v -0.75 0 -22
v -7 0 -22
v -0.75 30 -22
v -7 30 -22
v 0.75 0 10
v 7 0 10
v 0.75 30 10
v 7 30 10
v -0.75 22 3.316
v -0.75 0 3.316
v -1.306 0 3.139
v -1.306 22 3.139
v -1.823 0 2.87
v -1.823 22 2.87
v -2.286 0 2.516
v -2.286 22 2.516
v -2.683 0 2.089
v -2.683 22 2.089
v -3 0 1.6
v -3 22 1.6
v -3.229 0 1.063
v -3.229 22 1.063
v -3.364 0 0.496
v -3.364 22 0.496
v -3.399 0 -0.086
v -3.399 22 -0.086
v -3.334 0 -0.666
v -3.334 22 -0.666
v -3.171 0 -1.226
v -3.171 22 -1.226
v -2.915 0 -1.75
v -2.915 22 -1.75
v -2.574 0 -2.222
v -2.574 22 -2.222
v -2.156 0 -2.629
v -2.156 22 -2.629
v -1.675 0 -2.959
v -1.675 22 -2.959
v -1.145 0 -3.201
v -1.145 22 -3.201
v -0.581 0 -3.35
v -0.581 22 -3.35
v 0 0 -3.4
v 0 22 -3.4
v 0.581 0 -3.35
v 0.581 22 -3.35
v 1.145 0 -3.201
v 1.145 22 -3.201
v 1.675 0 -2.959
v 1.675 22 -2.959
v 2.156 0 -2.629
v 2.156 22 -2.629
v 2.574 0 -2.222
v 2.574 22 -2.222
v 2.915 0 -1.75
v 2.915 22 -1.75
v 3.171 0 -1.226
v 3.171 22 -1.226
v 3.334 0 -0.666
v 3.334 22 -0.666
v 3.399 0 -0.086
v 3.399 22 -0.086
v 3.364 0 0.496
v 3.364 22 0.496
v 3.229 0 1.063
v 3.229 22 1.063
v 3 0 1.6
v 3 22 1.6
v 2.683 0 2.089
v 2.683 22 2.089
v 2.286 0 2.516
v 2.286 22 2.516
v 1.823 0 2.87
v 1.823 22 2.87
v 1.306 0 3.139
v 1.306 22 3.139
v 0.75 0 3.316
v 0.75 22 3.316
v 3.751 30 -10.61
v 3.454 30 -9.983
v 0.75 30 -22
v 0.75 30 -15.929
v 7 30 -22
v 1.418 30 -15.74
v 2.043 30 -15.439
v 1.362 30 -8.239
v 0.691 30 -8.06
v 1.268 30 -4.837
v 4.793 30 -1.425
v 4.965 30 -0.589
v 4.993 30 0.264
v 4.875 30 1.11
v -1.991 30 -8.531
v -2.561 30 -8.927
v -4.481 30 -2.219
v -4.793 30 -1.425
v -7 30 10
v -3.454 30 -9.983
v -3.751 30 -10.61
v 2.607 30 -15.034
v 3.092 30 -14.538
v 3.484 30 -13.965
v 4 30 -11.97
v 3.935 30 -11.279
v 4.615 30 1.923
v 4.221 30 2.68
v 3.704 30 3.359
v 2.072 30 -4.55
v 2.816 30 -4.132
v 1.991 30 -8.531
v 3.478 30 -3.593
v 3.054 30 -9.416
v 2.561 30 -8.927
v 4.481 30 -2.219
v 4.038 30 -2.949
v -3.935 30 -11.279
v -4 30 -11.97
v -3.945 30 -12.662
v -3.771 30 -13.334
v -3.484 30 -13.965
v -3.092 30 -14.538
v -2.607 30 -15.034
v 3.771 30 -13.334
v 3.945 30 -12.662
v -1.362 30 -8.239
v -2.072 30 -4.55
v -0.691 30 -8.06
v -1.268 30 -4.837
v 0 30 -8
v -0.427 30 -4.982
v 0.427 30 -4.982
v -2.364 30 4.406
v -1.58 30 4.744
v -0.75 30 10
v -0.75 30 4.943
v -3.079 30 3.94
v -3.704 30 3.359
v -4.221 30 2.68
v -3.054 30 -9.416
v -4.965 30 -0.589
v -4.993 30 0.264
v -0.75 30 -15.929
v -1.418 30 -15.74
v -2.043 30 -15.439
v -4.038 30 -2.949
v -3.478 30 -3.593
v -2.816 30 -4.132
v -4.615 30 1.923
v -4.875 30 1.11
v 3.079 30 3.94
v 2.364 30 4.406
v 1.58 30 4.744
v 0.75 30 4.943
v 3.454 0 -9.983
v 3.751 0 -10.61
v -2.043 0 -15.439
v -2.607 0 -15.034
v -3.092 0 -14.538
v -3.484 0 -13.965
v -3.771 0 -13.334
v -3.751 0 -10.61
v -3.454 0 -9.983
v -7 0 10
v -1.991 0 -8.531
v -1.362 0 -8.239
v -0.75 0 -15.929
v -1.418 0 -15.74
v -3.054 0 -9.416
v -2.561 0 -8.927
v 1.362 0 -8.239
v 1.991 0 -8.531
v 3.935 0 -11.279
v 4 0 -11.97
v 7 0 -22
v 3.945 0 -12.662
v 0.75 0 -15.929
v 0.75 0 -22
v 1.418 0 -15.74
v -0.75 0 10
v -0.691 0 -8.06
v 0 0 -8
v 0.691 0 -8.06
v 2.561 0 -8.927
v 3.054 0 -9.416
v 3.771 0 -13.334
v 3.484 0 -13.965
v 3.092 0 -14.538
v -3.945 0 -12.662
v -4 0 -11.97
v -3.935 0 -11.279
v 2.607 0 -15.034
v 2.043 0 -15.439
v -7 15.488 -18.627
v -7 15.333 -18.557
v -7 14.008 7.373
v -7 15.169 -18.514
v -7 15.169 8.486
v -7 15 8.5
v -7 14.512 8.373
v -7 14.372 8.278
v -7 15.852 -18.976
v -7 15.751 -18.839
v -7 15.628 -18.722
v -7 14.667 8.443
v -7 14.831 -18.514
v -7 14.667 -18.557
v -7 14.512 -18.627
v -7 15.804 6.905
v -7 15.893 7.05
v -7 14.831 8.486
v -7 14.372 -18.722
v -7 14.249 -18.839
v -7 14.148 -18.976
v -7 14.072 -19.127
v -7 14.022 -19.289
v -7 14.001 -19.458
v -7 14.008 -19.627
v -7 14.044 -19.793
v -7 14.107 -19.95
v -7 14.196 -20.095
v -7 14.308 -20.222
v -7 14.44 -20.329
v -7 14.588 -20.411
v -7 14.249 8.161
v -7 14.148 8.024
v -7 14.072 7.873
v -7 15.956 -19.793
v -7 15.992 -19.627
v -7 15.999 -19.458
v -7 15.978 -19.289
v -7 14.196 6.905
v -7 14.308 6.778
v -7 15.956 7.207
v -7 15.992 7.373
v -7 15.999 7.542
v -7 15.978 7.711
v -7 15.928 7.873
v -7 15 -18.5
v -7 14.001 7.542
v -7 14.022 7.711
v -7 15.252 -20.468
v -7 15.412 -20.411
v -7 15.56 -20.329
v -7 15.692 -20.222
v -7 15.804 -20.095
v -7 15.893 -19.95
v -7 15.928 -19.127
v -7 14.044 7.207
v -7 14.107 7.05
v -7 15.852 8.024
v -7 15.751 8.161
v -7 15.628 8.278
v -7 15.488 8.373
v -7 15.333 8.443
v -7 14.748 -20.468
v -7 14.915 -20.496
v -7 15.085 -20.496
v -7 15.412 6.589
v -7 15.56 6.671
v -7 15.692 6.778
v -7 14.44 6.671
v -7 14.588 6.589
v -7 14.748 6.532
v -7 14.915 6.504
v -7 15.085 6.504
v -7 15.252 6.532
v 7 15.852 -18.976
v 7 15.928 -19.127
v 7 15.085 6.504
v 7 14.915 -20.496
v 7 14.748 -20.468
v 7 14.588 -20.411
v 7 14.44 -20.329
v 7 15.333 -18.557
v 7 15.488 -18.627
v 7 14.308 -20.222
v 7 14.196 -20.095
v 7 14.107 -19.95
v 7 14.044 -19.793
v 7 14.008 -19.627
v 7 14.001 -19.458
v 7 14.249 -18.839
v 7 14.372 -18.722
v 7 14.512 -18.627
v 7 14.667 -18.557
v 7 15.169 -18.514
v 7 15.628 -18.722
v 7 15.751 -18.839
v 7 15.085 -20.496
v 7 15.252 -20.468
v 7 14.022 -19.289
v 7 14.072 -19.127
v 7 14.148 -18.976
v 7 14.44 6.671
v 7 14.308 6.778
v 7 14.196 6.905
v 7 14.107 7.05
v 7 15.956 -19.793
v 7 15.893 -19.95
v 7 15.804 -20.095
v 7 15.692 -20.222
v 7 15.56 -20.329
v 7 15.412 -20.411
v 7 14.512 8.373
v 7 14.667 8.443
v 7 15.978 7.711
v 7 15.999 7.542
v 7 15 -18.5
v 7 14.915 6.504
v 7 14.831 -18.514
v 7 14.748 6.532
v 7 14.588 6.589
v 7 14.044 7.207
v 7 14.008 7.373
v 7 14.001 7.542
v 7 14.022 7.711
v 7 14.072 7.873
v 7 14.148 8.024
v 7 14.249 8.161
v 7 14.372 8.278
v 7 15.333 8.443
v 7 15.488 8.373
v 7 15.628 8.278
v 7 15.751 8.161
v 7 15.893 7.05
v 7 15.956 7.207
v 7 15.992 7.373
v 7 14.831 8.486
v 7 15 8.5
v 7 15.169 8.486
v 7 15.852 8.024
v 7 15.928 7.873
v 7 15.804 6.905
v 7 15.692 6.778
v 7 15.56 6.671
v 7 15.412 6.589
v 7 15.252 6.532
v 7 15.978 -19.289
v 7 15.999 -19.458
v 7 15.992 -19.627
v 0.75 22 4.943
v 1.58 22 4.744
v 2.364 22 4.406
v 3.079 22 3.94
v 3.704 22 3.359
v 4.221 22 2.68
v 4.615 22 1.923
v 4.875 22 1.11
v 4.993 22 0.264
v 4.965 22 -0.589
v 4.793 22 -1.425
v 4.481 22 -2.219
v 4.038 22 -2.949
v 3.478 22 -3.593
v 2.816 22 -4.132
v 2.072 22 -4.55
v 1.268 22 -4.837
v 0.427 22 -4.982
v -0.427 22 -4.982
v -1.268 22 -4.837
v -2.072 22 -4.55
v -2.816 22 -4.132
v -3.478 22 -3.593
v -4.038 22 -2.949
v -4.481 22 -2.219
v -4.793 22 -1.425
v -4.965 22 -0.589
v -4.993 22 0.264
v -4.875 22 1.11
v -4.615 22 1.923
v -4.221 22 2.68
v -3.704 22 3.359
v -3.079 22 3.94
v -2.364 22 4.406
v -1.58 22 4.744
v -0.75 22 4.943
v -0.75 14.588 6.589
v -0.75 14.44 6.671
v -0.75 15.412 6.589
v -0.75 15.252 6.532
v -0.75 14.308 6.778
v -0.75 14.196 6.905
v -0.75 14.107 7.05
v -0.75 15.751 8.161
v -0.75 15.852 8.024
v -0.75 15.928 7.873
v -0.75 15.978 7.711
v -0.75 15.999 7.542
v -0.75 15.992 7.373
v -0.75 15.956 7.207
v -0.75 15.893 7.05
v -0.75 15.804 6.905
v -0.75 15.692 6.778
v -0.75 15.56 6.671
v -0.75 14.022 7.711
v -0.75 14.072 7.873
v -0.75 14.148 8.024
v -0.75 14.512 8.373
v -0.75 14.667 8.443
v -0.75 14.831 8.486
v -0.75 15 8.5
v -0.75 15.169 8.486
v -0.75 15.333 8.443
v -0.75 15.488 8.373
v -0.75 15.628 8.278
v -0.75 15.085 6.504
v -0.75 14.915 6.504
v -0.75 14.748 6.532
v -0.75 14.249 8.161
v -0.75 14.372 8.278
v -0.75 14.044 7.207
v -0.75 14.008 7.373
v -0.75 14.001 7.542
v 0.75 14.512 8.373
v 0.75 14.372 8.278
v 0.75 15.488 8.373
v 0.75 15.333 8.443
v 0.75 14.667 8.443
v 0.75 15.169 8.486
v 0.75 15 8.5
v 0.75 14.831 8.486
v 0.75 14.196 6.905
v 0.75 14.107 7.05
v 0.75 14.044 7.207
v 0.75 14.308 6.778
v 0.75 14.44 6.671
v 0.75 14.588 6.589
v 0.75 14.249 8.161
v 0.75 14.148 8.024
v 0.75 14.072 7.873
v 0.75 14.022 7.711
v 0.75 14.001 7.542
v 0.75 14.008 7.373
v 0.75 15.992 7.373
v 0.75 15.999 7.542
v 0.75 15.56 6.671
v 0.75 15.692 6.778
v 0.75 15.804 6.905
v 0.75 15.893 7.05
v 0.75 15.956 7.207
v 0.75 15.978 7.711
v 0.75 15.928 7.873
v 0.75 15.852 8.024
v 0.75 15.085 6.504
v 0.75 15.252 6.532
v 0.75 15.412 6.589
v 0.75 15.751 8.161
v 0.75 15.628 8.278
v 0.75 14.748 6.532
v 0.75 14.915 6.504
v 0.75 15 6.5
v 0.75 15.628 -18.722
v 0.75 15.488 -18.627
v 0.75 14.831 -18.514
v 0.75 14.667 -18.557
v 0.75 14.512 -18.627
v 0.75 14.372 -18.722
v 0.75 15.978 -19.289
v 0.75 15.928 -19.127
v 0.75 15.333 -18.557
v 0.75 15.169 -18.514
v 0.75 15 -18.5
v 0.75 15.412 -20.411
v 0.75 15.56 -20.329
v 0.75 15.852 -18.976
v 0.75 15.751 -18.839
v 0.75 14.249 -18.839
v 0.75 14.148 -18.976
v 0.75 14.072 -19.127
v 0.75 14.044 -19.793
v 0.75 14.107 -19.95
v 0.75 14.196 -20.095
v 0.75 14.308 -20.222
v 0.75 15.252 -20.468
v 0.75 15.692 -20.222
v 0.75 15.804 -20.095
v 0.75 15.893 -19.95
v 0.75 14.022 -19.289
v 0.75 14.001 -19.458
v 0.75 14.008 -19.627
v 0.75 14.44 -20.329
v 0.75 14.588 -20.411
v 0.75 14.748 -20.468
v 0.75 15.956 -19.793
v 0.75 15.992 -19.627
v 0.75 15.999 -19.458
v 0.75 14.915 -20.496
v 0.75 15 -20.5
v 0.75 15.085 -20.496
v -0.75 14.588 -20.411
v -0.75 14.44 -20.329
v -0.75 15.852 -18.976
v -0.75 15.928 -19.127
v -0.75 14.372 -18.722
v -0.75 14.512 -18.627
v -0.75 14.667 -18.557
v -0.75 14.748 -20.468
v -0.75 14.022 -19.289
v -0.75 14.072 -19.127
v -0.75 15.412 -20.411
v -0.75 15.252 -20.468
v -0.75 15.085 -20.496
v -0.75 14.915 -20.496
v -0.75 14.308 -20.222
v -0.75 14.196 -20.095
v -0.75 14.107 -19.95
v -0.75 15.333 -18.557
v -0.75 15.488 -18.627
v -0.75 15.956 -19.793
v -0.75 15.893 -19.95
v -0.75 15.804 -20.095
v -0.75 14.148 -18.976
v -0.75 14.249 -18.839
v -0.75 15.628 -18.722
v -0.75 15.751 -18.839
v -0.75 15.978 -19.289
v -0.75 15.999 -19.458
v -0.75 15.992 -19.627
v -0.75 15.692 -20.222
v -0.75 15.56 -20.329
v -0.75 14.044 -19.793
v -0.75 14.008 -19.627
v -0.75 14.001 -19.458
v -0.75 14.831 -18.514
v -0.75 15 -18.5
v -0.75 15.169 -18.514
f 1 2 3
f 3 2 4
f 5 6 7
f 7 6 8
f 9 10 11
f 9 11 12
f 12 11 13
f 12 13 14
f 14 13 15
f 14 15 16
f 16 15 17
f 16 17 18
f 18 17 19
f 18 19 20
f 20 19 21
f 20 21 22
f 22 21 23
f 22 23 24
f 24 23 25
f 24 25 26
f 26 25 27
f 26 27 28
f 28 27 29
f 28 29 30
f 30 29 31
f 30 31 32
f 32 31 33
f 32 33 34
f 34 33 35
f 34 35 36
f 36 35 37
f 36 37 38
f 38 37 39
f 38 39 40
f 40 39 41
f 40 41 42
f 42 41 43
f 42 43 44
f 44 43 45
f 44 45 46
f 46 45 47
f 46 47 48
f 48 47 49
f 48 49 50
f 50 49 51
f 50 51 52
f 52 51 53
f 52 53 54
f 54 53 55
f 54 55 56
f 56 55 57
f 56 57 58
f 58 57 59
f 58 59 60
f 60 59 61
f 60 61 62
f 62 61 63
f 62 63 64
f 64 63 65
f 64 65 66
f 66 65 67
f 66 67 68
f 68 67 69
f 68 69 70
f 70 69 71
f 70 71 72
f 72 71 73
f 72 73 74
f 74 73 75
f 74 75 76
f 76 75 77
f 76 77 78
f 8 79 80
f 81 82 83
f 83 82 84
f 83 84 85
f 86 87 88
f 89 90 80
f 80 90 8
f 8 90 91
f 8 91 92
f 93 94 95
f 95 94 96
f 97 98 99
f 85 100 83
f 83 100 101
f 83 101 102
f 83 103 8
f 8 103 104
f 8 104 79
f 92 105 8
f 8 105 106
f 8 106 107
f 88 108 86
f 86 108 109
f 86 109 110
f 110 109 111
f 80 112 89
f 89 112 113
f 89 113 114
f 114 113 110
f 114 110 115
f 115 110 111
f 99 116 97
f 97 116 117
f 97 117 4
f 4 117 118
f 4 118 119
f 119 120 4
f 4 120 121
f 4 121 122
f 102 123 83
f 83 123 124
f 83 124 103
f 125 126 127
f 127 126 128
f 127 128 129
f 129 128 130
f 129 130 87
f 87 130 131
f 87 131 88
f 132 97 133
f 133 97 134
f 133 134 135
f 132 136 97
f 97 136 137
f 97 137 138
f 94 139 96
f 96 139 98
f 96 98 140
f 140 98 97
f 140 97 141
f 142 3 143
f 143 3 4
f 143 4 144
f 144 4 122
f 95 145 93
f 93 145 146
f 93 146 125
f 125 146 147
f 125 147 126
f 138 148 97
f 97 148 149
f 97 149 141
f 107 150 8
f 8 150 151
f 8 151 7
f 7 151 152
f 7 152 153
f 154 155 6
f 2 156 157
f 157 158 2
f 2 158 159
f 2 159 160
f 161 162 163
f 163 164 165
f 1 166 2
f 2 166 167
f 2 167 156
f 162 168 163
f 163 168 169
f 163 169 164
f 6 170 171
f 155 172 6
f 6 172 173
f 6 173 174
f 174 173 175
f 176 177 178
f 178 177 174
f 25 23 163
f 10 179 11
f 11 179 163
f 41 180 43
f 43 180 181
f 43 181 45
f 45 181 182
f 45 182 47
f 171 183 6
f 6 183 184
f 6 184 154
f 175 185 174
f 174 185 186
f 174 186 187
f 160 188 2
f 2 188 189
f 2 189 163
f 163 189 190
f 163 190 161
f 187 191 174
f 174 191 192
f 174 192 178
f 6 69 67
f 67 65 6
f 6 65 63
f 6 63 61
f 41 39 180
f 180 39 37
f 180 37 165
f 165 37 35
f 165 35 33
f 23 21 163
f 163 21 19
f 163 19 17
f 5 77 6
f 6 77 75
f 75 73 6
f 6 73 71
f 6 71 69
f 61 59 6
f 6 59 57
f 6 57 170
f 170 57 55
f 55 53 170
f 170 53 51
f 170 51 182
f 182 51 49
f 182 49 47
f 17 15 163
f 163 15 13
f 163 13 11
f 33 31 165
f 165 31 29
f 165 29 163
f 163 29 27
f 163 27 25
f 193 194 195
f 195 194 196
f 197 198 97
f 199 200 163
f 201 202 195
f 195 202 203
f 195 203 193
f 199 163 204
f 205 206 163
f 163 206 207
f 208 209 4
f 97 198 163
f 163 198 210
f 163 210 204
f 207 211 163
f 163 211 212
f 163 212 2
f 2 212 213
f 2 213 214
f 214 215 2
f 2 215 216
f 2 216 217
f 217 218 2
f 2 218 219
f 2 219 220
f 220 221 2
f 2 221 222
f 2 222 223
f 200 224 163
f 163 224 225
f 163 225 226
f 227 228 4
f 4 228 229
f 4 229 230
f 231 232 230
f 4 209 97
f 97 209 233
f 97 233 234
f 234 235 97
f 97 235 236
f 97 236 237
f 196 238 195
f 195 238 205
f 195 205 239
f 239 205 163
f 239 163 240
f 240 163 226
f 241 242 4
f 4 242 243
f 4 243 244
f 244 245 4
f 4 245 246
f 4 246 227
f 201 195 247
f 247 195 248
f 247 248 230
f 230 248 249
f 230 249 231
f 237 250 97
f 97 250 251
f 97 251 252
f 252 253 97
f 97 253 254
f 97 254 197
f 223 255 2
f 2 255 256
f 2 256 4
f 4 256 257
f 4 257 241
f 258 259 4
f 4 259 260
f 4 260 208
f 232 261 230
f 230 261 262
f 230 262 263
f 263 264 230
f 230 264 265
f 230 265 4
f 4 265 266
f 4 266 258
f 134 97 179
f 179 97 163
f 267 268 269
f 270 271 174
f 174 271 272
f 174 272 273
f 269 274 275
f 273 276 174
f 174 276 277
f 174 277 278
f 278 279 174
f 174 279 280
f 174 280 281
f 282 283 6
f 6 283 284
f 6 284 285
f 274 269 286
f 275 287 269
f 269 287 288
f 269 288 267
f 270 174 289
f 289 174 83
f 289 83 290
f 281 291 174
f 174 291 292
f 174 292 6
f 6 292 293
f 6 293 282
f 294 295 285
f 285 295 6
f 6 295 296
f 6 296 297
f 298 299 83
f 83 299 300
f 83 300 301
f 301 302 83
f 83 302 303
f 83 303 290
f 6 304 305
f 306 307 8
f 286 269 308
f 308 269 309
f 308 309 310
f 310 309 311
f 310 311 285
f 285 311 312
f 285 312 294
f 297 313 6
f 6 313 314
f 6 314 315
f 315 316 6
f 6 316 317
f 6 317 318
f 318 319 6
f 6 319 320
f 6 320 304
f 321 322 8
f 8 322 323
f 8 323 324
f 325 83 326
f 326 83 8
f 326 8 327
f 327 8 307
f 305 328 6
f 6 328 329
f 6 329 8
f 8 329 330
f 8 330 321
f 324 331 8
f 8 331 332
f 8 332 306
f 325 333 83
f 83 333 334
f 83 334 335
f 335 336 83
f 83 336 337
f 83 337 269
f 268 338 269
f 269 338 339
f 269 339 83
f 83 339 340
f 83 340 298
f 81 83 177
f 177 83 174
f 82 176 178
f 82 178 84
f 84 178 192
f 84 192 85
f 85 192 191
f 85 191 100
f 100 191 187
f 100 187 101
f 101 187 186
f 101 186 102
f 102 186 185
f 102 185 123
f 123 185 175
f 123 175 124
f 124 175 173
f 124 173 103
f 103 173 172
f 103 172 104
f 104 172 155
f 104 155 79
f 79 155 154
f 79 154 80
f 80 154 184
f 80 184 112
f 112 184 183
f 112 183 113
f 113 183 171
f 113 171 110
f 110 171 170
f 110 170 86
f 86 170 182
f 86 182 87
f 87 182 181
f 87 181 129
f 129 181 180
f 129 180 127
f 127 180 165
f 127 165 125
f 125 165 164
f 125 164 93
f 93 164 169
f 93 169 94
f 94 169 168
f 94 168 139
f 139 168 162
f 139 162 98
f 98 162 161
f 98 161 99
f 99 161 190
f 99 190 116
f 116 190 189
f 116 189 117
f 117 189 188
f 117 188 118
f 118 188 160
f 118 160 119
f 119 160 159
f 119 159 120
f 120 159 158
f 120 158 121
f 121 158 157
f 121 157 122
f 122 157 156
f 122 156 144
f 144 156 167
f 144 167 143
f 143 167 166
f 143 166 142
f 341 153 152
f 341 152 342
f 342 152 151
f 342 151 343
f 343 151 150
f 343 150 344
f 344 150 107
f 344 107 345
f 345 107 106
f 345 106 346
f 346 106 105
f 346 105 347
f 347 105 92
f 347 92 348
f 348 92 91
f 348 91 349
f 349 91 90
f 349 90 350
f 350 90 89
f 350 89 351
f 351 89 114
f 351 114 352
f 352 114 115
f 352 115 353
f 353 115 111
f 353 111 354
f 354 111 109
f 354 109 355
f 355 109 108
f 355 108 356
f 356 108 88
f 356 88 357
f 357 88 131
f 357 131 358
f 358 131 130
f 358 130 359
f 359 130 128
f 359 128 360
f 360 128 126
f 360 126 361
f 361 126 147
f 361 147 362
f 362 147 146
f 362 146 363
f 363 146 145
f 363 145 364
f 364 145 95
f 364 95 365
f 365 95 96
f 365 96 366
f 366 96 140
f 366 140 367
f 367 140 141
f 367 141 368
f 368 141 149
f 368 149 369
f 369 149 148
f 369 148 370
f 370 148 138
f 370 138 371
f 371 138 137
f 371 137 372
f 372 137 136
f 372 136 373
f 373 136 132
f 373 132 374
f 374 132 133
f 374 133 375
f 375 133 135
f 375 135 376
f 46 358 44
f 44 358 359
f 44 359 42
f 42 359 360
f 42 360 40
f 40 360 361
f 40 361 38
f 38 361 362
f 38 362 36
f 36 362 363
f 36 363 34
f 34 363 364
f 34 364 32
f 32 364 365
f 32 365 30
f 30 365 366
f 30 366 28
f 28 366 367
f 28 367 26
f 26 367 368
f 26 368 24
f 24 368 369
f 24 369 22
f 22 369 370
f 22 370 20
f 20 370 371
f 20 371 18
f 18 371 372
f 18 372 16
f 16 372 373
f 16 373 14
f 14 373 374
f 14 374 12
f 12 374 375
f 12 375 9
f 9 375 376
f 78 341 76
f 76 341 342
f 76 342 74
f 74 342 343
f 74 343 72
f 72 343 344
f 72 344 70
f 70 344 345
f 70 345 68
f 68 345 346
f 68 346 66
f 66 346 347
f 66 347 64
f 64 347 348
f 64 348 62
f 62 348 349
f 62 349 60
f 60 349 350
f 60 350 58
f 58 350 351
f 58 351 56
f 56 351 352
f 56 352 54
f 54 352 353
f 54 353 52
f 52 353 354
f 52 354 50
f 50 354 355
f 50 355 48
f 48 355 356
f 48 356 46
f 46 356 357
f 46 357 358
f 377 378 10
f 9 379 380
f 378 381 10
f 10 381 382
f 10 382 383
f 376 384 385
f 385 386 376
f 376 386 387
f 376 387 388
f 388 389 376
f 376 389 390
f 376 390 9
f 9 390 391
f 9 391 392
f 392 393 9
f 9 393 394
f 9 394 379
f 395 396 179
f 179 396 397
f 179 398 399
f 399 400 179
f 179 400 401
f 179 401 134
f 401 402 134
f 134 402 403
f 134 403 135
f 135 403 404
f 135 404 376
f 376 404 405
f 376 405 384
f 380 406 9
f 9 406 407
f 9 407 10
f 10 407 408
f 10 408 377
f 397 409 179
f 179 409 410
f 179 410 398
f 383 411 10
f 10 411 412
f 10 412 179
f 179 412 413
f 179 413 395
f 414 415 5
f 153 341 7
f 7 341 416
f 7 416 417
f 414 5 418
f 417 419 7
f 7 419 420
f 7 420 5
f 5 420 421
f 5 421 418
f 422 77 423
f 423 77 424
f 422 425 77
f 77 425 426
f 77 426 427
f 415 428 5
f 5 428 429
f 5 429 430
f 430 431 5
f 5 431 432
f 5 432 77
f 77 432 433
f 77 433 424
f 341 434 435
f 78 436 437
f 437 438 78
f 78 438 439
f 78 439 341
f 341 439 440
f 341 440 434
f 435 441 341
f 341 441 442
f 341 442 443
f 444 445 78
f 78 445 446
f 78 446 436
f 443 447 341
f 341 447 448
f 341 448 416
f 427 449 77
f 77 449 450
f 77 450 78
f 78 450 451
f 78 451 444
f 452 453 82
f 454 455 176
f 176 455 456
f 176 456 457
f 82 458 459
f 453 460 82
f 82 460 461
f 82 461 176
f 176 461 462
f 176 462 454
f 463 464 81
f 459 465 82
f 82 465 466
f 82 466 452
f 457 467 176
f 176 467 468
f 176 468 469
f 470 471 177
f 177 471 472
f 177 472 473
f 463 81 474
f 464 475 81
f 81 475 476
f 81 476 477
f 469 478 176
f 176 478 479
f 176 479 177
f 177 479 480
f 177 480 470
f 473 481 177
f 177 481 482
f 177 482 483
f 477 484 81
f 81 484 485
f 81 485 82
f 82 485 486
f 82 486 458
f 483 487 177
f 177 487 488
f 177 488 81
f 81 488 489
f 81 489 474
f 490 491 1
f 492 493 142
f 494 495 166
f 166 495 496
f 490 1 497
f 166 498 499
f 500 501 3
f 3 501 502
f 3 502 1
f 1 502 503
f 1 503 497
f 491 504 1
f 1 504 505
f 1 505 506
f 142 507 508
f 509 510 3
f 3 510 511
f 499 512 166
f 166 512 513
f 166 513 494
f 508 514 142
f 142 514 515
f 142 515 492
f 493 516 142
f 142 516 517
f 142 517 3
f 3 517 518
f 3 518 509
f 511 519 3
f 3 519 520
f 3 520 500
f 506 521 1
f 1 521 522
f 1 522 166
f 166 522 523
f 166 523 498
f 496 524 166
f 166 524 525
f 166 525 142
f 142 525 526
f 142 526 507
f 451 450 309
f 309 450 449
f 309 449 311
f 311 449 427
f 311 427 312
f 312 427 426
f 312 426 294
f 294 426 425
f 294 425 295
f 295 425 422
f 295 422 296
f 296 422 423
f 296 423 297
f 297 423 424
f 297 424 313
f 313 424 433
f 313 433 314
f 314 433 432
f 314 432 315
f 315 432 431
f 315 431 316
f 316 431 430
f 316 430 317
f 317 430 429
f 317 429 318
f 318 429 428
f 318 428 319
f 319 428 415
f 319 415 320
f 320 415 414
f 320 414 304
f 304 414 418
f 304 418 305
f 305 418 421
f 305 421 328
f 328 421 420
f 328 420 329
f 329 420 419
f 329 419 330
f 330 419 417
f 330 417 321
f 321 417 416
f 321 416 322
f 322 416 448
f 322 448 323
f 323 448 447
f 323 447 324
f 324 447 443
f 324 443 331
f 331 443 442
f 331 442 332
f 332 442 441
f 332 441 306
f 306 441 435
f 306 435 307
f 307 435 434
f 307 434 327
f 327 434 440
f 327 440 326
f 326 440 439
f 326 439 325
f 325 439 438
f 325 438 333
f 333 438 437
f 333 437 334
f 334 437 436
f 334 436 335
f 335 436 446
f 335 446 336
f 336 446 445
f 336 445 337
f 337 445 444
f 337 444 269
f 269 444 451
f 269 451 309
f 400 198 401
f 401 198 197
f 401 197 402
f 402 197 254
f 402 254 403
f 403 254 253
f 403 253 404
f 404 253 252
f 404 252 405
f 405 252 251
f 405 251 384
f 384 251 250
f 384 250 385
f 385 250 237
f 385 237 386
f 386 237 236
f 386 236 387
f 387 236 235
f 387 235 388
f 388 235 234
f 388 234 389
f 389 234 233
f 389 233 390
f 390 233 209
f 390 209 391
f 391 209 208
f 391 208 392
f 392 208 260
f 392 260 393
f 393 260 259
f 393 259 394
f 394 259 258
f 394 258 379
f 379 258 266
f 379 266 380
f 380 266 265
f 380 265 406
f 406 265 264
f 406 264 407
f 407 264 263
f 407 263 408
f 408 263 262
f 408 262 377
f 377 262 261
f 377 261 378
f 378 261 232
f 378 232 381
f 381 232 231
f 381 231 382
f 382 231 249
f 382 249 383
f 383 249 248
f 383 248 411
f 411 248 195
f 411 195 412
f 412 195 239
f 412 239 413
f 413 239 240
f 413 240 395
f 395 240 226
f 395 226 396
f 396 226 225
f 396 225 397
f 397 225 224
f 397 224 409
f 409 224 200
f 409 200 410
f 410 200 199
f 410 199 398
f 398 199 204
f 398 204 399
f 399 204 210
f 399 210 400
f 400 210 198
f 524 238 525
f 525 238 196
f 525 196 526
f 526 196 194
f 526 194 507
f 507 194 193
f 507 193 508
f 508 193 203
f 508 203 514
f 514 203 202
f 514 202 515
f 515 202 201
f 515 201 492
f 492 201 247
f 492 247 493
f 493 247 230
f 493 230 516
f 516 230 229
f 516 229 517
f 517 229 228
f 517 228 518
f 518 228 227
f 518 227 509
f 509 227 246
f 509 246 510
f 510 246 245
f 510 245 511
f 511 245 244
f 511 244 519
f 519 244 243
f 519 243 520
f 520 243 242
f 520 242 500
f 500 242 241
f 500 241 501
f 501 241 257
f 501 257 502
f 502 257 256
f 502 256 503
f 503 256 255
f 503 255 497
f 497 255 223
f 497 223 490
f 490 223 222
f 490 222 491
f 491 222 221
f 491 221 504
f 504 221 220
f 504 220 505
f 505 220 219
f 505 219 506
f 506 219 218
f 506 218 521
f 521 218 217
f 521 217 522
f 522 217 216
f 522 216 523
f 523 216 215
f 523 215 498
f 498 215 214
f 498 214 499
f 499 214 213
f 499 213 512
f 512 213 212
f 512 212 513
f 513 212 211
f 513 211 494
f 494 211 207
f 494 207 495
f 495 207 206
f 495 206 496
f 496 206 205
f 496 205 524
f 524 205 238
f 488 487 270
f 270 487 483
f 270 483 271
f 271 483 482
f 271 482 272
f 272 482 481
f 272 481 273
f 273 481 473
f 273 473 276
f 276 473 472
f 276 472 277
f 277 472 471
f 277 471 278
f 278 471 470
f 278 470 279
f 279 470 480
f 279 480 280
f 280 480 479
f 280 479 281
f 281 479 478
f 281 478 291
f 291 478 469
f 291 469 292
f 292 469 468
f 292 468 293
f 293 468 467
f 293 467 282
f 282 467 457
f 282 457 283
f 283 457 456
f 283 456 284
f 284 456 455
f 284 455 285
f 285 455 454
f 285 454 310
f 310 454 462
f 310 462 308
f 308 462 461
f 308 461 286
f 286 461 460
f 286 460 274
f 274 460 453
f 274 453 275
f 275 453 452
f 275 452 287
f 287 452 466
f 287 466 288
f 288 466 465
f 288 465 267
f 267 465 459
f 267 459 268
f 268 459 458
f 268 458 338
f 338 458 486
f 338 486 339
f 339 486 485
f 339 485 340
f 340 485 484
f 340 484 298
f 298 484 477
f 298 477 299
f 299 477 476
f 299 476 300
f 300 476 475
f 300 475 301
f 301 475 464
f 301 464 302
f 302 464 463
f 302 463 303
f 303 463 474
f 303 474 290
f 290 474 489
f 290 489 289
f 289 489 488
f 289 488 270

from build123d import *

# Parameters (mm, degrees)
SKETCH1_W           = 14
SKETCH1_H           = 32
SKETCH1_R           = 3.4
SKETCH1_R_2         = 4
BOSS_EXTRUDE1_DEPTH = 30
SKETCH2_R           = 5
CUT_EXTRUDE1_DEPTH  = 8
SKETCH3_W           = 1.5
SKETCH3_H           = 20
CUT_EXTRUDE2_DEPTH  = 38.854986461
SKETCH4_R           = 1
CUT_EXTRUDE3_DEPTH  = 40.749213829


with BuildPart() as part:
    # Sketch1 → Boss-Extrude1 (new body)
    with BuildSketch(Plane(origin=(0, 0, 0), x_dir=(1, 0, 0), z_dir=(0, 1, 0))):
        with Locations((0, 6)):
            Rectangle(SKETCH1_W, SKETCH1_H)
        with Locations(Location((0, 0, 0), (0, 0, 270))):
            Circle(SKETCH1_R, mode=Mode.SUBTRACT)
        with Locations(Location((0, 12, 0), (0, 0, 270))):
            Circle(SKETCH1_R_2, mode=Mode.SUBTRACT)
    extrude(amount=BOSS_EXTRUDE1_DEPTH)

    # Sketch2 → Cut-Extrude1 (cut)
    with BuildSketch(Plane(origin=(0, 30, 0), x_dir=(1, 0, 0), z_dir=(0, 1, 0))):
        with Locations(Location((0, 0, 0), (0, 0, 270))):
            Circle(SKETCH2_R)
    extrude(amount=-CUT_EXTRUDE1_DEPTH, mode=Mode.SUBTRACT)

    # Sketch3 → Cut-Extrude2 (cut, through all)
    with BuildSketch(Plane.XZ):
        with Locations((0, 10)):
            Rectangle(SKETCH3_W, SKETCH3_H)
        with Locations((0, -22)):
            Rectangle(SKETCH3_W, SKETCH3_H)
    extrude(amount=-CUT_EXTRUDE2_DEPTH, mode=Mode.SUBTRACT)

    # Sketch4 → Cut-Extrude3 (cut, through all)
    with BuildSketch(Plane.ZY.offset(7)):
        with Locations((7.5, 15)):
            Circle(SKETCH4_R)
        with Locations((-19.5, 15)):
            Circle(SKETCH4_R)
    extrude(amount=-CUT_EXTRUDE3_DEPTH, mode=Mode.SUBTRACT)


solid = part.part
